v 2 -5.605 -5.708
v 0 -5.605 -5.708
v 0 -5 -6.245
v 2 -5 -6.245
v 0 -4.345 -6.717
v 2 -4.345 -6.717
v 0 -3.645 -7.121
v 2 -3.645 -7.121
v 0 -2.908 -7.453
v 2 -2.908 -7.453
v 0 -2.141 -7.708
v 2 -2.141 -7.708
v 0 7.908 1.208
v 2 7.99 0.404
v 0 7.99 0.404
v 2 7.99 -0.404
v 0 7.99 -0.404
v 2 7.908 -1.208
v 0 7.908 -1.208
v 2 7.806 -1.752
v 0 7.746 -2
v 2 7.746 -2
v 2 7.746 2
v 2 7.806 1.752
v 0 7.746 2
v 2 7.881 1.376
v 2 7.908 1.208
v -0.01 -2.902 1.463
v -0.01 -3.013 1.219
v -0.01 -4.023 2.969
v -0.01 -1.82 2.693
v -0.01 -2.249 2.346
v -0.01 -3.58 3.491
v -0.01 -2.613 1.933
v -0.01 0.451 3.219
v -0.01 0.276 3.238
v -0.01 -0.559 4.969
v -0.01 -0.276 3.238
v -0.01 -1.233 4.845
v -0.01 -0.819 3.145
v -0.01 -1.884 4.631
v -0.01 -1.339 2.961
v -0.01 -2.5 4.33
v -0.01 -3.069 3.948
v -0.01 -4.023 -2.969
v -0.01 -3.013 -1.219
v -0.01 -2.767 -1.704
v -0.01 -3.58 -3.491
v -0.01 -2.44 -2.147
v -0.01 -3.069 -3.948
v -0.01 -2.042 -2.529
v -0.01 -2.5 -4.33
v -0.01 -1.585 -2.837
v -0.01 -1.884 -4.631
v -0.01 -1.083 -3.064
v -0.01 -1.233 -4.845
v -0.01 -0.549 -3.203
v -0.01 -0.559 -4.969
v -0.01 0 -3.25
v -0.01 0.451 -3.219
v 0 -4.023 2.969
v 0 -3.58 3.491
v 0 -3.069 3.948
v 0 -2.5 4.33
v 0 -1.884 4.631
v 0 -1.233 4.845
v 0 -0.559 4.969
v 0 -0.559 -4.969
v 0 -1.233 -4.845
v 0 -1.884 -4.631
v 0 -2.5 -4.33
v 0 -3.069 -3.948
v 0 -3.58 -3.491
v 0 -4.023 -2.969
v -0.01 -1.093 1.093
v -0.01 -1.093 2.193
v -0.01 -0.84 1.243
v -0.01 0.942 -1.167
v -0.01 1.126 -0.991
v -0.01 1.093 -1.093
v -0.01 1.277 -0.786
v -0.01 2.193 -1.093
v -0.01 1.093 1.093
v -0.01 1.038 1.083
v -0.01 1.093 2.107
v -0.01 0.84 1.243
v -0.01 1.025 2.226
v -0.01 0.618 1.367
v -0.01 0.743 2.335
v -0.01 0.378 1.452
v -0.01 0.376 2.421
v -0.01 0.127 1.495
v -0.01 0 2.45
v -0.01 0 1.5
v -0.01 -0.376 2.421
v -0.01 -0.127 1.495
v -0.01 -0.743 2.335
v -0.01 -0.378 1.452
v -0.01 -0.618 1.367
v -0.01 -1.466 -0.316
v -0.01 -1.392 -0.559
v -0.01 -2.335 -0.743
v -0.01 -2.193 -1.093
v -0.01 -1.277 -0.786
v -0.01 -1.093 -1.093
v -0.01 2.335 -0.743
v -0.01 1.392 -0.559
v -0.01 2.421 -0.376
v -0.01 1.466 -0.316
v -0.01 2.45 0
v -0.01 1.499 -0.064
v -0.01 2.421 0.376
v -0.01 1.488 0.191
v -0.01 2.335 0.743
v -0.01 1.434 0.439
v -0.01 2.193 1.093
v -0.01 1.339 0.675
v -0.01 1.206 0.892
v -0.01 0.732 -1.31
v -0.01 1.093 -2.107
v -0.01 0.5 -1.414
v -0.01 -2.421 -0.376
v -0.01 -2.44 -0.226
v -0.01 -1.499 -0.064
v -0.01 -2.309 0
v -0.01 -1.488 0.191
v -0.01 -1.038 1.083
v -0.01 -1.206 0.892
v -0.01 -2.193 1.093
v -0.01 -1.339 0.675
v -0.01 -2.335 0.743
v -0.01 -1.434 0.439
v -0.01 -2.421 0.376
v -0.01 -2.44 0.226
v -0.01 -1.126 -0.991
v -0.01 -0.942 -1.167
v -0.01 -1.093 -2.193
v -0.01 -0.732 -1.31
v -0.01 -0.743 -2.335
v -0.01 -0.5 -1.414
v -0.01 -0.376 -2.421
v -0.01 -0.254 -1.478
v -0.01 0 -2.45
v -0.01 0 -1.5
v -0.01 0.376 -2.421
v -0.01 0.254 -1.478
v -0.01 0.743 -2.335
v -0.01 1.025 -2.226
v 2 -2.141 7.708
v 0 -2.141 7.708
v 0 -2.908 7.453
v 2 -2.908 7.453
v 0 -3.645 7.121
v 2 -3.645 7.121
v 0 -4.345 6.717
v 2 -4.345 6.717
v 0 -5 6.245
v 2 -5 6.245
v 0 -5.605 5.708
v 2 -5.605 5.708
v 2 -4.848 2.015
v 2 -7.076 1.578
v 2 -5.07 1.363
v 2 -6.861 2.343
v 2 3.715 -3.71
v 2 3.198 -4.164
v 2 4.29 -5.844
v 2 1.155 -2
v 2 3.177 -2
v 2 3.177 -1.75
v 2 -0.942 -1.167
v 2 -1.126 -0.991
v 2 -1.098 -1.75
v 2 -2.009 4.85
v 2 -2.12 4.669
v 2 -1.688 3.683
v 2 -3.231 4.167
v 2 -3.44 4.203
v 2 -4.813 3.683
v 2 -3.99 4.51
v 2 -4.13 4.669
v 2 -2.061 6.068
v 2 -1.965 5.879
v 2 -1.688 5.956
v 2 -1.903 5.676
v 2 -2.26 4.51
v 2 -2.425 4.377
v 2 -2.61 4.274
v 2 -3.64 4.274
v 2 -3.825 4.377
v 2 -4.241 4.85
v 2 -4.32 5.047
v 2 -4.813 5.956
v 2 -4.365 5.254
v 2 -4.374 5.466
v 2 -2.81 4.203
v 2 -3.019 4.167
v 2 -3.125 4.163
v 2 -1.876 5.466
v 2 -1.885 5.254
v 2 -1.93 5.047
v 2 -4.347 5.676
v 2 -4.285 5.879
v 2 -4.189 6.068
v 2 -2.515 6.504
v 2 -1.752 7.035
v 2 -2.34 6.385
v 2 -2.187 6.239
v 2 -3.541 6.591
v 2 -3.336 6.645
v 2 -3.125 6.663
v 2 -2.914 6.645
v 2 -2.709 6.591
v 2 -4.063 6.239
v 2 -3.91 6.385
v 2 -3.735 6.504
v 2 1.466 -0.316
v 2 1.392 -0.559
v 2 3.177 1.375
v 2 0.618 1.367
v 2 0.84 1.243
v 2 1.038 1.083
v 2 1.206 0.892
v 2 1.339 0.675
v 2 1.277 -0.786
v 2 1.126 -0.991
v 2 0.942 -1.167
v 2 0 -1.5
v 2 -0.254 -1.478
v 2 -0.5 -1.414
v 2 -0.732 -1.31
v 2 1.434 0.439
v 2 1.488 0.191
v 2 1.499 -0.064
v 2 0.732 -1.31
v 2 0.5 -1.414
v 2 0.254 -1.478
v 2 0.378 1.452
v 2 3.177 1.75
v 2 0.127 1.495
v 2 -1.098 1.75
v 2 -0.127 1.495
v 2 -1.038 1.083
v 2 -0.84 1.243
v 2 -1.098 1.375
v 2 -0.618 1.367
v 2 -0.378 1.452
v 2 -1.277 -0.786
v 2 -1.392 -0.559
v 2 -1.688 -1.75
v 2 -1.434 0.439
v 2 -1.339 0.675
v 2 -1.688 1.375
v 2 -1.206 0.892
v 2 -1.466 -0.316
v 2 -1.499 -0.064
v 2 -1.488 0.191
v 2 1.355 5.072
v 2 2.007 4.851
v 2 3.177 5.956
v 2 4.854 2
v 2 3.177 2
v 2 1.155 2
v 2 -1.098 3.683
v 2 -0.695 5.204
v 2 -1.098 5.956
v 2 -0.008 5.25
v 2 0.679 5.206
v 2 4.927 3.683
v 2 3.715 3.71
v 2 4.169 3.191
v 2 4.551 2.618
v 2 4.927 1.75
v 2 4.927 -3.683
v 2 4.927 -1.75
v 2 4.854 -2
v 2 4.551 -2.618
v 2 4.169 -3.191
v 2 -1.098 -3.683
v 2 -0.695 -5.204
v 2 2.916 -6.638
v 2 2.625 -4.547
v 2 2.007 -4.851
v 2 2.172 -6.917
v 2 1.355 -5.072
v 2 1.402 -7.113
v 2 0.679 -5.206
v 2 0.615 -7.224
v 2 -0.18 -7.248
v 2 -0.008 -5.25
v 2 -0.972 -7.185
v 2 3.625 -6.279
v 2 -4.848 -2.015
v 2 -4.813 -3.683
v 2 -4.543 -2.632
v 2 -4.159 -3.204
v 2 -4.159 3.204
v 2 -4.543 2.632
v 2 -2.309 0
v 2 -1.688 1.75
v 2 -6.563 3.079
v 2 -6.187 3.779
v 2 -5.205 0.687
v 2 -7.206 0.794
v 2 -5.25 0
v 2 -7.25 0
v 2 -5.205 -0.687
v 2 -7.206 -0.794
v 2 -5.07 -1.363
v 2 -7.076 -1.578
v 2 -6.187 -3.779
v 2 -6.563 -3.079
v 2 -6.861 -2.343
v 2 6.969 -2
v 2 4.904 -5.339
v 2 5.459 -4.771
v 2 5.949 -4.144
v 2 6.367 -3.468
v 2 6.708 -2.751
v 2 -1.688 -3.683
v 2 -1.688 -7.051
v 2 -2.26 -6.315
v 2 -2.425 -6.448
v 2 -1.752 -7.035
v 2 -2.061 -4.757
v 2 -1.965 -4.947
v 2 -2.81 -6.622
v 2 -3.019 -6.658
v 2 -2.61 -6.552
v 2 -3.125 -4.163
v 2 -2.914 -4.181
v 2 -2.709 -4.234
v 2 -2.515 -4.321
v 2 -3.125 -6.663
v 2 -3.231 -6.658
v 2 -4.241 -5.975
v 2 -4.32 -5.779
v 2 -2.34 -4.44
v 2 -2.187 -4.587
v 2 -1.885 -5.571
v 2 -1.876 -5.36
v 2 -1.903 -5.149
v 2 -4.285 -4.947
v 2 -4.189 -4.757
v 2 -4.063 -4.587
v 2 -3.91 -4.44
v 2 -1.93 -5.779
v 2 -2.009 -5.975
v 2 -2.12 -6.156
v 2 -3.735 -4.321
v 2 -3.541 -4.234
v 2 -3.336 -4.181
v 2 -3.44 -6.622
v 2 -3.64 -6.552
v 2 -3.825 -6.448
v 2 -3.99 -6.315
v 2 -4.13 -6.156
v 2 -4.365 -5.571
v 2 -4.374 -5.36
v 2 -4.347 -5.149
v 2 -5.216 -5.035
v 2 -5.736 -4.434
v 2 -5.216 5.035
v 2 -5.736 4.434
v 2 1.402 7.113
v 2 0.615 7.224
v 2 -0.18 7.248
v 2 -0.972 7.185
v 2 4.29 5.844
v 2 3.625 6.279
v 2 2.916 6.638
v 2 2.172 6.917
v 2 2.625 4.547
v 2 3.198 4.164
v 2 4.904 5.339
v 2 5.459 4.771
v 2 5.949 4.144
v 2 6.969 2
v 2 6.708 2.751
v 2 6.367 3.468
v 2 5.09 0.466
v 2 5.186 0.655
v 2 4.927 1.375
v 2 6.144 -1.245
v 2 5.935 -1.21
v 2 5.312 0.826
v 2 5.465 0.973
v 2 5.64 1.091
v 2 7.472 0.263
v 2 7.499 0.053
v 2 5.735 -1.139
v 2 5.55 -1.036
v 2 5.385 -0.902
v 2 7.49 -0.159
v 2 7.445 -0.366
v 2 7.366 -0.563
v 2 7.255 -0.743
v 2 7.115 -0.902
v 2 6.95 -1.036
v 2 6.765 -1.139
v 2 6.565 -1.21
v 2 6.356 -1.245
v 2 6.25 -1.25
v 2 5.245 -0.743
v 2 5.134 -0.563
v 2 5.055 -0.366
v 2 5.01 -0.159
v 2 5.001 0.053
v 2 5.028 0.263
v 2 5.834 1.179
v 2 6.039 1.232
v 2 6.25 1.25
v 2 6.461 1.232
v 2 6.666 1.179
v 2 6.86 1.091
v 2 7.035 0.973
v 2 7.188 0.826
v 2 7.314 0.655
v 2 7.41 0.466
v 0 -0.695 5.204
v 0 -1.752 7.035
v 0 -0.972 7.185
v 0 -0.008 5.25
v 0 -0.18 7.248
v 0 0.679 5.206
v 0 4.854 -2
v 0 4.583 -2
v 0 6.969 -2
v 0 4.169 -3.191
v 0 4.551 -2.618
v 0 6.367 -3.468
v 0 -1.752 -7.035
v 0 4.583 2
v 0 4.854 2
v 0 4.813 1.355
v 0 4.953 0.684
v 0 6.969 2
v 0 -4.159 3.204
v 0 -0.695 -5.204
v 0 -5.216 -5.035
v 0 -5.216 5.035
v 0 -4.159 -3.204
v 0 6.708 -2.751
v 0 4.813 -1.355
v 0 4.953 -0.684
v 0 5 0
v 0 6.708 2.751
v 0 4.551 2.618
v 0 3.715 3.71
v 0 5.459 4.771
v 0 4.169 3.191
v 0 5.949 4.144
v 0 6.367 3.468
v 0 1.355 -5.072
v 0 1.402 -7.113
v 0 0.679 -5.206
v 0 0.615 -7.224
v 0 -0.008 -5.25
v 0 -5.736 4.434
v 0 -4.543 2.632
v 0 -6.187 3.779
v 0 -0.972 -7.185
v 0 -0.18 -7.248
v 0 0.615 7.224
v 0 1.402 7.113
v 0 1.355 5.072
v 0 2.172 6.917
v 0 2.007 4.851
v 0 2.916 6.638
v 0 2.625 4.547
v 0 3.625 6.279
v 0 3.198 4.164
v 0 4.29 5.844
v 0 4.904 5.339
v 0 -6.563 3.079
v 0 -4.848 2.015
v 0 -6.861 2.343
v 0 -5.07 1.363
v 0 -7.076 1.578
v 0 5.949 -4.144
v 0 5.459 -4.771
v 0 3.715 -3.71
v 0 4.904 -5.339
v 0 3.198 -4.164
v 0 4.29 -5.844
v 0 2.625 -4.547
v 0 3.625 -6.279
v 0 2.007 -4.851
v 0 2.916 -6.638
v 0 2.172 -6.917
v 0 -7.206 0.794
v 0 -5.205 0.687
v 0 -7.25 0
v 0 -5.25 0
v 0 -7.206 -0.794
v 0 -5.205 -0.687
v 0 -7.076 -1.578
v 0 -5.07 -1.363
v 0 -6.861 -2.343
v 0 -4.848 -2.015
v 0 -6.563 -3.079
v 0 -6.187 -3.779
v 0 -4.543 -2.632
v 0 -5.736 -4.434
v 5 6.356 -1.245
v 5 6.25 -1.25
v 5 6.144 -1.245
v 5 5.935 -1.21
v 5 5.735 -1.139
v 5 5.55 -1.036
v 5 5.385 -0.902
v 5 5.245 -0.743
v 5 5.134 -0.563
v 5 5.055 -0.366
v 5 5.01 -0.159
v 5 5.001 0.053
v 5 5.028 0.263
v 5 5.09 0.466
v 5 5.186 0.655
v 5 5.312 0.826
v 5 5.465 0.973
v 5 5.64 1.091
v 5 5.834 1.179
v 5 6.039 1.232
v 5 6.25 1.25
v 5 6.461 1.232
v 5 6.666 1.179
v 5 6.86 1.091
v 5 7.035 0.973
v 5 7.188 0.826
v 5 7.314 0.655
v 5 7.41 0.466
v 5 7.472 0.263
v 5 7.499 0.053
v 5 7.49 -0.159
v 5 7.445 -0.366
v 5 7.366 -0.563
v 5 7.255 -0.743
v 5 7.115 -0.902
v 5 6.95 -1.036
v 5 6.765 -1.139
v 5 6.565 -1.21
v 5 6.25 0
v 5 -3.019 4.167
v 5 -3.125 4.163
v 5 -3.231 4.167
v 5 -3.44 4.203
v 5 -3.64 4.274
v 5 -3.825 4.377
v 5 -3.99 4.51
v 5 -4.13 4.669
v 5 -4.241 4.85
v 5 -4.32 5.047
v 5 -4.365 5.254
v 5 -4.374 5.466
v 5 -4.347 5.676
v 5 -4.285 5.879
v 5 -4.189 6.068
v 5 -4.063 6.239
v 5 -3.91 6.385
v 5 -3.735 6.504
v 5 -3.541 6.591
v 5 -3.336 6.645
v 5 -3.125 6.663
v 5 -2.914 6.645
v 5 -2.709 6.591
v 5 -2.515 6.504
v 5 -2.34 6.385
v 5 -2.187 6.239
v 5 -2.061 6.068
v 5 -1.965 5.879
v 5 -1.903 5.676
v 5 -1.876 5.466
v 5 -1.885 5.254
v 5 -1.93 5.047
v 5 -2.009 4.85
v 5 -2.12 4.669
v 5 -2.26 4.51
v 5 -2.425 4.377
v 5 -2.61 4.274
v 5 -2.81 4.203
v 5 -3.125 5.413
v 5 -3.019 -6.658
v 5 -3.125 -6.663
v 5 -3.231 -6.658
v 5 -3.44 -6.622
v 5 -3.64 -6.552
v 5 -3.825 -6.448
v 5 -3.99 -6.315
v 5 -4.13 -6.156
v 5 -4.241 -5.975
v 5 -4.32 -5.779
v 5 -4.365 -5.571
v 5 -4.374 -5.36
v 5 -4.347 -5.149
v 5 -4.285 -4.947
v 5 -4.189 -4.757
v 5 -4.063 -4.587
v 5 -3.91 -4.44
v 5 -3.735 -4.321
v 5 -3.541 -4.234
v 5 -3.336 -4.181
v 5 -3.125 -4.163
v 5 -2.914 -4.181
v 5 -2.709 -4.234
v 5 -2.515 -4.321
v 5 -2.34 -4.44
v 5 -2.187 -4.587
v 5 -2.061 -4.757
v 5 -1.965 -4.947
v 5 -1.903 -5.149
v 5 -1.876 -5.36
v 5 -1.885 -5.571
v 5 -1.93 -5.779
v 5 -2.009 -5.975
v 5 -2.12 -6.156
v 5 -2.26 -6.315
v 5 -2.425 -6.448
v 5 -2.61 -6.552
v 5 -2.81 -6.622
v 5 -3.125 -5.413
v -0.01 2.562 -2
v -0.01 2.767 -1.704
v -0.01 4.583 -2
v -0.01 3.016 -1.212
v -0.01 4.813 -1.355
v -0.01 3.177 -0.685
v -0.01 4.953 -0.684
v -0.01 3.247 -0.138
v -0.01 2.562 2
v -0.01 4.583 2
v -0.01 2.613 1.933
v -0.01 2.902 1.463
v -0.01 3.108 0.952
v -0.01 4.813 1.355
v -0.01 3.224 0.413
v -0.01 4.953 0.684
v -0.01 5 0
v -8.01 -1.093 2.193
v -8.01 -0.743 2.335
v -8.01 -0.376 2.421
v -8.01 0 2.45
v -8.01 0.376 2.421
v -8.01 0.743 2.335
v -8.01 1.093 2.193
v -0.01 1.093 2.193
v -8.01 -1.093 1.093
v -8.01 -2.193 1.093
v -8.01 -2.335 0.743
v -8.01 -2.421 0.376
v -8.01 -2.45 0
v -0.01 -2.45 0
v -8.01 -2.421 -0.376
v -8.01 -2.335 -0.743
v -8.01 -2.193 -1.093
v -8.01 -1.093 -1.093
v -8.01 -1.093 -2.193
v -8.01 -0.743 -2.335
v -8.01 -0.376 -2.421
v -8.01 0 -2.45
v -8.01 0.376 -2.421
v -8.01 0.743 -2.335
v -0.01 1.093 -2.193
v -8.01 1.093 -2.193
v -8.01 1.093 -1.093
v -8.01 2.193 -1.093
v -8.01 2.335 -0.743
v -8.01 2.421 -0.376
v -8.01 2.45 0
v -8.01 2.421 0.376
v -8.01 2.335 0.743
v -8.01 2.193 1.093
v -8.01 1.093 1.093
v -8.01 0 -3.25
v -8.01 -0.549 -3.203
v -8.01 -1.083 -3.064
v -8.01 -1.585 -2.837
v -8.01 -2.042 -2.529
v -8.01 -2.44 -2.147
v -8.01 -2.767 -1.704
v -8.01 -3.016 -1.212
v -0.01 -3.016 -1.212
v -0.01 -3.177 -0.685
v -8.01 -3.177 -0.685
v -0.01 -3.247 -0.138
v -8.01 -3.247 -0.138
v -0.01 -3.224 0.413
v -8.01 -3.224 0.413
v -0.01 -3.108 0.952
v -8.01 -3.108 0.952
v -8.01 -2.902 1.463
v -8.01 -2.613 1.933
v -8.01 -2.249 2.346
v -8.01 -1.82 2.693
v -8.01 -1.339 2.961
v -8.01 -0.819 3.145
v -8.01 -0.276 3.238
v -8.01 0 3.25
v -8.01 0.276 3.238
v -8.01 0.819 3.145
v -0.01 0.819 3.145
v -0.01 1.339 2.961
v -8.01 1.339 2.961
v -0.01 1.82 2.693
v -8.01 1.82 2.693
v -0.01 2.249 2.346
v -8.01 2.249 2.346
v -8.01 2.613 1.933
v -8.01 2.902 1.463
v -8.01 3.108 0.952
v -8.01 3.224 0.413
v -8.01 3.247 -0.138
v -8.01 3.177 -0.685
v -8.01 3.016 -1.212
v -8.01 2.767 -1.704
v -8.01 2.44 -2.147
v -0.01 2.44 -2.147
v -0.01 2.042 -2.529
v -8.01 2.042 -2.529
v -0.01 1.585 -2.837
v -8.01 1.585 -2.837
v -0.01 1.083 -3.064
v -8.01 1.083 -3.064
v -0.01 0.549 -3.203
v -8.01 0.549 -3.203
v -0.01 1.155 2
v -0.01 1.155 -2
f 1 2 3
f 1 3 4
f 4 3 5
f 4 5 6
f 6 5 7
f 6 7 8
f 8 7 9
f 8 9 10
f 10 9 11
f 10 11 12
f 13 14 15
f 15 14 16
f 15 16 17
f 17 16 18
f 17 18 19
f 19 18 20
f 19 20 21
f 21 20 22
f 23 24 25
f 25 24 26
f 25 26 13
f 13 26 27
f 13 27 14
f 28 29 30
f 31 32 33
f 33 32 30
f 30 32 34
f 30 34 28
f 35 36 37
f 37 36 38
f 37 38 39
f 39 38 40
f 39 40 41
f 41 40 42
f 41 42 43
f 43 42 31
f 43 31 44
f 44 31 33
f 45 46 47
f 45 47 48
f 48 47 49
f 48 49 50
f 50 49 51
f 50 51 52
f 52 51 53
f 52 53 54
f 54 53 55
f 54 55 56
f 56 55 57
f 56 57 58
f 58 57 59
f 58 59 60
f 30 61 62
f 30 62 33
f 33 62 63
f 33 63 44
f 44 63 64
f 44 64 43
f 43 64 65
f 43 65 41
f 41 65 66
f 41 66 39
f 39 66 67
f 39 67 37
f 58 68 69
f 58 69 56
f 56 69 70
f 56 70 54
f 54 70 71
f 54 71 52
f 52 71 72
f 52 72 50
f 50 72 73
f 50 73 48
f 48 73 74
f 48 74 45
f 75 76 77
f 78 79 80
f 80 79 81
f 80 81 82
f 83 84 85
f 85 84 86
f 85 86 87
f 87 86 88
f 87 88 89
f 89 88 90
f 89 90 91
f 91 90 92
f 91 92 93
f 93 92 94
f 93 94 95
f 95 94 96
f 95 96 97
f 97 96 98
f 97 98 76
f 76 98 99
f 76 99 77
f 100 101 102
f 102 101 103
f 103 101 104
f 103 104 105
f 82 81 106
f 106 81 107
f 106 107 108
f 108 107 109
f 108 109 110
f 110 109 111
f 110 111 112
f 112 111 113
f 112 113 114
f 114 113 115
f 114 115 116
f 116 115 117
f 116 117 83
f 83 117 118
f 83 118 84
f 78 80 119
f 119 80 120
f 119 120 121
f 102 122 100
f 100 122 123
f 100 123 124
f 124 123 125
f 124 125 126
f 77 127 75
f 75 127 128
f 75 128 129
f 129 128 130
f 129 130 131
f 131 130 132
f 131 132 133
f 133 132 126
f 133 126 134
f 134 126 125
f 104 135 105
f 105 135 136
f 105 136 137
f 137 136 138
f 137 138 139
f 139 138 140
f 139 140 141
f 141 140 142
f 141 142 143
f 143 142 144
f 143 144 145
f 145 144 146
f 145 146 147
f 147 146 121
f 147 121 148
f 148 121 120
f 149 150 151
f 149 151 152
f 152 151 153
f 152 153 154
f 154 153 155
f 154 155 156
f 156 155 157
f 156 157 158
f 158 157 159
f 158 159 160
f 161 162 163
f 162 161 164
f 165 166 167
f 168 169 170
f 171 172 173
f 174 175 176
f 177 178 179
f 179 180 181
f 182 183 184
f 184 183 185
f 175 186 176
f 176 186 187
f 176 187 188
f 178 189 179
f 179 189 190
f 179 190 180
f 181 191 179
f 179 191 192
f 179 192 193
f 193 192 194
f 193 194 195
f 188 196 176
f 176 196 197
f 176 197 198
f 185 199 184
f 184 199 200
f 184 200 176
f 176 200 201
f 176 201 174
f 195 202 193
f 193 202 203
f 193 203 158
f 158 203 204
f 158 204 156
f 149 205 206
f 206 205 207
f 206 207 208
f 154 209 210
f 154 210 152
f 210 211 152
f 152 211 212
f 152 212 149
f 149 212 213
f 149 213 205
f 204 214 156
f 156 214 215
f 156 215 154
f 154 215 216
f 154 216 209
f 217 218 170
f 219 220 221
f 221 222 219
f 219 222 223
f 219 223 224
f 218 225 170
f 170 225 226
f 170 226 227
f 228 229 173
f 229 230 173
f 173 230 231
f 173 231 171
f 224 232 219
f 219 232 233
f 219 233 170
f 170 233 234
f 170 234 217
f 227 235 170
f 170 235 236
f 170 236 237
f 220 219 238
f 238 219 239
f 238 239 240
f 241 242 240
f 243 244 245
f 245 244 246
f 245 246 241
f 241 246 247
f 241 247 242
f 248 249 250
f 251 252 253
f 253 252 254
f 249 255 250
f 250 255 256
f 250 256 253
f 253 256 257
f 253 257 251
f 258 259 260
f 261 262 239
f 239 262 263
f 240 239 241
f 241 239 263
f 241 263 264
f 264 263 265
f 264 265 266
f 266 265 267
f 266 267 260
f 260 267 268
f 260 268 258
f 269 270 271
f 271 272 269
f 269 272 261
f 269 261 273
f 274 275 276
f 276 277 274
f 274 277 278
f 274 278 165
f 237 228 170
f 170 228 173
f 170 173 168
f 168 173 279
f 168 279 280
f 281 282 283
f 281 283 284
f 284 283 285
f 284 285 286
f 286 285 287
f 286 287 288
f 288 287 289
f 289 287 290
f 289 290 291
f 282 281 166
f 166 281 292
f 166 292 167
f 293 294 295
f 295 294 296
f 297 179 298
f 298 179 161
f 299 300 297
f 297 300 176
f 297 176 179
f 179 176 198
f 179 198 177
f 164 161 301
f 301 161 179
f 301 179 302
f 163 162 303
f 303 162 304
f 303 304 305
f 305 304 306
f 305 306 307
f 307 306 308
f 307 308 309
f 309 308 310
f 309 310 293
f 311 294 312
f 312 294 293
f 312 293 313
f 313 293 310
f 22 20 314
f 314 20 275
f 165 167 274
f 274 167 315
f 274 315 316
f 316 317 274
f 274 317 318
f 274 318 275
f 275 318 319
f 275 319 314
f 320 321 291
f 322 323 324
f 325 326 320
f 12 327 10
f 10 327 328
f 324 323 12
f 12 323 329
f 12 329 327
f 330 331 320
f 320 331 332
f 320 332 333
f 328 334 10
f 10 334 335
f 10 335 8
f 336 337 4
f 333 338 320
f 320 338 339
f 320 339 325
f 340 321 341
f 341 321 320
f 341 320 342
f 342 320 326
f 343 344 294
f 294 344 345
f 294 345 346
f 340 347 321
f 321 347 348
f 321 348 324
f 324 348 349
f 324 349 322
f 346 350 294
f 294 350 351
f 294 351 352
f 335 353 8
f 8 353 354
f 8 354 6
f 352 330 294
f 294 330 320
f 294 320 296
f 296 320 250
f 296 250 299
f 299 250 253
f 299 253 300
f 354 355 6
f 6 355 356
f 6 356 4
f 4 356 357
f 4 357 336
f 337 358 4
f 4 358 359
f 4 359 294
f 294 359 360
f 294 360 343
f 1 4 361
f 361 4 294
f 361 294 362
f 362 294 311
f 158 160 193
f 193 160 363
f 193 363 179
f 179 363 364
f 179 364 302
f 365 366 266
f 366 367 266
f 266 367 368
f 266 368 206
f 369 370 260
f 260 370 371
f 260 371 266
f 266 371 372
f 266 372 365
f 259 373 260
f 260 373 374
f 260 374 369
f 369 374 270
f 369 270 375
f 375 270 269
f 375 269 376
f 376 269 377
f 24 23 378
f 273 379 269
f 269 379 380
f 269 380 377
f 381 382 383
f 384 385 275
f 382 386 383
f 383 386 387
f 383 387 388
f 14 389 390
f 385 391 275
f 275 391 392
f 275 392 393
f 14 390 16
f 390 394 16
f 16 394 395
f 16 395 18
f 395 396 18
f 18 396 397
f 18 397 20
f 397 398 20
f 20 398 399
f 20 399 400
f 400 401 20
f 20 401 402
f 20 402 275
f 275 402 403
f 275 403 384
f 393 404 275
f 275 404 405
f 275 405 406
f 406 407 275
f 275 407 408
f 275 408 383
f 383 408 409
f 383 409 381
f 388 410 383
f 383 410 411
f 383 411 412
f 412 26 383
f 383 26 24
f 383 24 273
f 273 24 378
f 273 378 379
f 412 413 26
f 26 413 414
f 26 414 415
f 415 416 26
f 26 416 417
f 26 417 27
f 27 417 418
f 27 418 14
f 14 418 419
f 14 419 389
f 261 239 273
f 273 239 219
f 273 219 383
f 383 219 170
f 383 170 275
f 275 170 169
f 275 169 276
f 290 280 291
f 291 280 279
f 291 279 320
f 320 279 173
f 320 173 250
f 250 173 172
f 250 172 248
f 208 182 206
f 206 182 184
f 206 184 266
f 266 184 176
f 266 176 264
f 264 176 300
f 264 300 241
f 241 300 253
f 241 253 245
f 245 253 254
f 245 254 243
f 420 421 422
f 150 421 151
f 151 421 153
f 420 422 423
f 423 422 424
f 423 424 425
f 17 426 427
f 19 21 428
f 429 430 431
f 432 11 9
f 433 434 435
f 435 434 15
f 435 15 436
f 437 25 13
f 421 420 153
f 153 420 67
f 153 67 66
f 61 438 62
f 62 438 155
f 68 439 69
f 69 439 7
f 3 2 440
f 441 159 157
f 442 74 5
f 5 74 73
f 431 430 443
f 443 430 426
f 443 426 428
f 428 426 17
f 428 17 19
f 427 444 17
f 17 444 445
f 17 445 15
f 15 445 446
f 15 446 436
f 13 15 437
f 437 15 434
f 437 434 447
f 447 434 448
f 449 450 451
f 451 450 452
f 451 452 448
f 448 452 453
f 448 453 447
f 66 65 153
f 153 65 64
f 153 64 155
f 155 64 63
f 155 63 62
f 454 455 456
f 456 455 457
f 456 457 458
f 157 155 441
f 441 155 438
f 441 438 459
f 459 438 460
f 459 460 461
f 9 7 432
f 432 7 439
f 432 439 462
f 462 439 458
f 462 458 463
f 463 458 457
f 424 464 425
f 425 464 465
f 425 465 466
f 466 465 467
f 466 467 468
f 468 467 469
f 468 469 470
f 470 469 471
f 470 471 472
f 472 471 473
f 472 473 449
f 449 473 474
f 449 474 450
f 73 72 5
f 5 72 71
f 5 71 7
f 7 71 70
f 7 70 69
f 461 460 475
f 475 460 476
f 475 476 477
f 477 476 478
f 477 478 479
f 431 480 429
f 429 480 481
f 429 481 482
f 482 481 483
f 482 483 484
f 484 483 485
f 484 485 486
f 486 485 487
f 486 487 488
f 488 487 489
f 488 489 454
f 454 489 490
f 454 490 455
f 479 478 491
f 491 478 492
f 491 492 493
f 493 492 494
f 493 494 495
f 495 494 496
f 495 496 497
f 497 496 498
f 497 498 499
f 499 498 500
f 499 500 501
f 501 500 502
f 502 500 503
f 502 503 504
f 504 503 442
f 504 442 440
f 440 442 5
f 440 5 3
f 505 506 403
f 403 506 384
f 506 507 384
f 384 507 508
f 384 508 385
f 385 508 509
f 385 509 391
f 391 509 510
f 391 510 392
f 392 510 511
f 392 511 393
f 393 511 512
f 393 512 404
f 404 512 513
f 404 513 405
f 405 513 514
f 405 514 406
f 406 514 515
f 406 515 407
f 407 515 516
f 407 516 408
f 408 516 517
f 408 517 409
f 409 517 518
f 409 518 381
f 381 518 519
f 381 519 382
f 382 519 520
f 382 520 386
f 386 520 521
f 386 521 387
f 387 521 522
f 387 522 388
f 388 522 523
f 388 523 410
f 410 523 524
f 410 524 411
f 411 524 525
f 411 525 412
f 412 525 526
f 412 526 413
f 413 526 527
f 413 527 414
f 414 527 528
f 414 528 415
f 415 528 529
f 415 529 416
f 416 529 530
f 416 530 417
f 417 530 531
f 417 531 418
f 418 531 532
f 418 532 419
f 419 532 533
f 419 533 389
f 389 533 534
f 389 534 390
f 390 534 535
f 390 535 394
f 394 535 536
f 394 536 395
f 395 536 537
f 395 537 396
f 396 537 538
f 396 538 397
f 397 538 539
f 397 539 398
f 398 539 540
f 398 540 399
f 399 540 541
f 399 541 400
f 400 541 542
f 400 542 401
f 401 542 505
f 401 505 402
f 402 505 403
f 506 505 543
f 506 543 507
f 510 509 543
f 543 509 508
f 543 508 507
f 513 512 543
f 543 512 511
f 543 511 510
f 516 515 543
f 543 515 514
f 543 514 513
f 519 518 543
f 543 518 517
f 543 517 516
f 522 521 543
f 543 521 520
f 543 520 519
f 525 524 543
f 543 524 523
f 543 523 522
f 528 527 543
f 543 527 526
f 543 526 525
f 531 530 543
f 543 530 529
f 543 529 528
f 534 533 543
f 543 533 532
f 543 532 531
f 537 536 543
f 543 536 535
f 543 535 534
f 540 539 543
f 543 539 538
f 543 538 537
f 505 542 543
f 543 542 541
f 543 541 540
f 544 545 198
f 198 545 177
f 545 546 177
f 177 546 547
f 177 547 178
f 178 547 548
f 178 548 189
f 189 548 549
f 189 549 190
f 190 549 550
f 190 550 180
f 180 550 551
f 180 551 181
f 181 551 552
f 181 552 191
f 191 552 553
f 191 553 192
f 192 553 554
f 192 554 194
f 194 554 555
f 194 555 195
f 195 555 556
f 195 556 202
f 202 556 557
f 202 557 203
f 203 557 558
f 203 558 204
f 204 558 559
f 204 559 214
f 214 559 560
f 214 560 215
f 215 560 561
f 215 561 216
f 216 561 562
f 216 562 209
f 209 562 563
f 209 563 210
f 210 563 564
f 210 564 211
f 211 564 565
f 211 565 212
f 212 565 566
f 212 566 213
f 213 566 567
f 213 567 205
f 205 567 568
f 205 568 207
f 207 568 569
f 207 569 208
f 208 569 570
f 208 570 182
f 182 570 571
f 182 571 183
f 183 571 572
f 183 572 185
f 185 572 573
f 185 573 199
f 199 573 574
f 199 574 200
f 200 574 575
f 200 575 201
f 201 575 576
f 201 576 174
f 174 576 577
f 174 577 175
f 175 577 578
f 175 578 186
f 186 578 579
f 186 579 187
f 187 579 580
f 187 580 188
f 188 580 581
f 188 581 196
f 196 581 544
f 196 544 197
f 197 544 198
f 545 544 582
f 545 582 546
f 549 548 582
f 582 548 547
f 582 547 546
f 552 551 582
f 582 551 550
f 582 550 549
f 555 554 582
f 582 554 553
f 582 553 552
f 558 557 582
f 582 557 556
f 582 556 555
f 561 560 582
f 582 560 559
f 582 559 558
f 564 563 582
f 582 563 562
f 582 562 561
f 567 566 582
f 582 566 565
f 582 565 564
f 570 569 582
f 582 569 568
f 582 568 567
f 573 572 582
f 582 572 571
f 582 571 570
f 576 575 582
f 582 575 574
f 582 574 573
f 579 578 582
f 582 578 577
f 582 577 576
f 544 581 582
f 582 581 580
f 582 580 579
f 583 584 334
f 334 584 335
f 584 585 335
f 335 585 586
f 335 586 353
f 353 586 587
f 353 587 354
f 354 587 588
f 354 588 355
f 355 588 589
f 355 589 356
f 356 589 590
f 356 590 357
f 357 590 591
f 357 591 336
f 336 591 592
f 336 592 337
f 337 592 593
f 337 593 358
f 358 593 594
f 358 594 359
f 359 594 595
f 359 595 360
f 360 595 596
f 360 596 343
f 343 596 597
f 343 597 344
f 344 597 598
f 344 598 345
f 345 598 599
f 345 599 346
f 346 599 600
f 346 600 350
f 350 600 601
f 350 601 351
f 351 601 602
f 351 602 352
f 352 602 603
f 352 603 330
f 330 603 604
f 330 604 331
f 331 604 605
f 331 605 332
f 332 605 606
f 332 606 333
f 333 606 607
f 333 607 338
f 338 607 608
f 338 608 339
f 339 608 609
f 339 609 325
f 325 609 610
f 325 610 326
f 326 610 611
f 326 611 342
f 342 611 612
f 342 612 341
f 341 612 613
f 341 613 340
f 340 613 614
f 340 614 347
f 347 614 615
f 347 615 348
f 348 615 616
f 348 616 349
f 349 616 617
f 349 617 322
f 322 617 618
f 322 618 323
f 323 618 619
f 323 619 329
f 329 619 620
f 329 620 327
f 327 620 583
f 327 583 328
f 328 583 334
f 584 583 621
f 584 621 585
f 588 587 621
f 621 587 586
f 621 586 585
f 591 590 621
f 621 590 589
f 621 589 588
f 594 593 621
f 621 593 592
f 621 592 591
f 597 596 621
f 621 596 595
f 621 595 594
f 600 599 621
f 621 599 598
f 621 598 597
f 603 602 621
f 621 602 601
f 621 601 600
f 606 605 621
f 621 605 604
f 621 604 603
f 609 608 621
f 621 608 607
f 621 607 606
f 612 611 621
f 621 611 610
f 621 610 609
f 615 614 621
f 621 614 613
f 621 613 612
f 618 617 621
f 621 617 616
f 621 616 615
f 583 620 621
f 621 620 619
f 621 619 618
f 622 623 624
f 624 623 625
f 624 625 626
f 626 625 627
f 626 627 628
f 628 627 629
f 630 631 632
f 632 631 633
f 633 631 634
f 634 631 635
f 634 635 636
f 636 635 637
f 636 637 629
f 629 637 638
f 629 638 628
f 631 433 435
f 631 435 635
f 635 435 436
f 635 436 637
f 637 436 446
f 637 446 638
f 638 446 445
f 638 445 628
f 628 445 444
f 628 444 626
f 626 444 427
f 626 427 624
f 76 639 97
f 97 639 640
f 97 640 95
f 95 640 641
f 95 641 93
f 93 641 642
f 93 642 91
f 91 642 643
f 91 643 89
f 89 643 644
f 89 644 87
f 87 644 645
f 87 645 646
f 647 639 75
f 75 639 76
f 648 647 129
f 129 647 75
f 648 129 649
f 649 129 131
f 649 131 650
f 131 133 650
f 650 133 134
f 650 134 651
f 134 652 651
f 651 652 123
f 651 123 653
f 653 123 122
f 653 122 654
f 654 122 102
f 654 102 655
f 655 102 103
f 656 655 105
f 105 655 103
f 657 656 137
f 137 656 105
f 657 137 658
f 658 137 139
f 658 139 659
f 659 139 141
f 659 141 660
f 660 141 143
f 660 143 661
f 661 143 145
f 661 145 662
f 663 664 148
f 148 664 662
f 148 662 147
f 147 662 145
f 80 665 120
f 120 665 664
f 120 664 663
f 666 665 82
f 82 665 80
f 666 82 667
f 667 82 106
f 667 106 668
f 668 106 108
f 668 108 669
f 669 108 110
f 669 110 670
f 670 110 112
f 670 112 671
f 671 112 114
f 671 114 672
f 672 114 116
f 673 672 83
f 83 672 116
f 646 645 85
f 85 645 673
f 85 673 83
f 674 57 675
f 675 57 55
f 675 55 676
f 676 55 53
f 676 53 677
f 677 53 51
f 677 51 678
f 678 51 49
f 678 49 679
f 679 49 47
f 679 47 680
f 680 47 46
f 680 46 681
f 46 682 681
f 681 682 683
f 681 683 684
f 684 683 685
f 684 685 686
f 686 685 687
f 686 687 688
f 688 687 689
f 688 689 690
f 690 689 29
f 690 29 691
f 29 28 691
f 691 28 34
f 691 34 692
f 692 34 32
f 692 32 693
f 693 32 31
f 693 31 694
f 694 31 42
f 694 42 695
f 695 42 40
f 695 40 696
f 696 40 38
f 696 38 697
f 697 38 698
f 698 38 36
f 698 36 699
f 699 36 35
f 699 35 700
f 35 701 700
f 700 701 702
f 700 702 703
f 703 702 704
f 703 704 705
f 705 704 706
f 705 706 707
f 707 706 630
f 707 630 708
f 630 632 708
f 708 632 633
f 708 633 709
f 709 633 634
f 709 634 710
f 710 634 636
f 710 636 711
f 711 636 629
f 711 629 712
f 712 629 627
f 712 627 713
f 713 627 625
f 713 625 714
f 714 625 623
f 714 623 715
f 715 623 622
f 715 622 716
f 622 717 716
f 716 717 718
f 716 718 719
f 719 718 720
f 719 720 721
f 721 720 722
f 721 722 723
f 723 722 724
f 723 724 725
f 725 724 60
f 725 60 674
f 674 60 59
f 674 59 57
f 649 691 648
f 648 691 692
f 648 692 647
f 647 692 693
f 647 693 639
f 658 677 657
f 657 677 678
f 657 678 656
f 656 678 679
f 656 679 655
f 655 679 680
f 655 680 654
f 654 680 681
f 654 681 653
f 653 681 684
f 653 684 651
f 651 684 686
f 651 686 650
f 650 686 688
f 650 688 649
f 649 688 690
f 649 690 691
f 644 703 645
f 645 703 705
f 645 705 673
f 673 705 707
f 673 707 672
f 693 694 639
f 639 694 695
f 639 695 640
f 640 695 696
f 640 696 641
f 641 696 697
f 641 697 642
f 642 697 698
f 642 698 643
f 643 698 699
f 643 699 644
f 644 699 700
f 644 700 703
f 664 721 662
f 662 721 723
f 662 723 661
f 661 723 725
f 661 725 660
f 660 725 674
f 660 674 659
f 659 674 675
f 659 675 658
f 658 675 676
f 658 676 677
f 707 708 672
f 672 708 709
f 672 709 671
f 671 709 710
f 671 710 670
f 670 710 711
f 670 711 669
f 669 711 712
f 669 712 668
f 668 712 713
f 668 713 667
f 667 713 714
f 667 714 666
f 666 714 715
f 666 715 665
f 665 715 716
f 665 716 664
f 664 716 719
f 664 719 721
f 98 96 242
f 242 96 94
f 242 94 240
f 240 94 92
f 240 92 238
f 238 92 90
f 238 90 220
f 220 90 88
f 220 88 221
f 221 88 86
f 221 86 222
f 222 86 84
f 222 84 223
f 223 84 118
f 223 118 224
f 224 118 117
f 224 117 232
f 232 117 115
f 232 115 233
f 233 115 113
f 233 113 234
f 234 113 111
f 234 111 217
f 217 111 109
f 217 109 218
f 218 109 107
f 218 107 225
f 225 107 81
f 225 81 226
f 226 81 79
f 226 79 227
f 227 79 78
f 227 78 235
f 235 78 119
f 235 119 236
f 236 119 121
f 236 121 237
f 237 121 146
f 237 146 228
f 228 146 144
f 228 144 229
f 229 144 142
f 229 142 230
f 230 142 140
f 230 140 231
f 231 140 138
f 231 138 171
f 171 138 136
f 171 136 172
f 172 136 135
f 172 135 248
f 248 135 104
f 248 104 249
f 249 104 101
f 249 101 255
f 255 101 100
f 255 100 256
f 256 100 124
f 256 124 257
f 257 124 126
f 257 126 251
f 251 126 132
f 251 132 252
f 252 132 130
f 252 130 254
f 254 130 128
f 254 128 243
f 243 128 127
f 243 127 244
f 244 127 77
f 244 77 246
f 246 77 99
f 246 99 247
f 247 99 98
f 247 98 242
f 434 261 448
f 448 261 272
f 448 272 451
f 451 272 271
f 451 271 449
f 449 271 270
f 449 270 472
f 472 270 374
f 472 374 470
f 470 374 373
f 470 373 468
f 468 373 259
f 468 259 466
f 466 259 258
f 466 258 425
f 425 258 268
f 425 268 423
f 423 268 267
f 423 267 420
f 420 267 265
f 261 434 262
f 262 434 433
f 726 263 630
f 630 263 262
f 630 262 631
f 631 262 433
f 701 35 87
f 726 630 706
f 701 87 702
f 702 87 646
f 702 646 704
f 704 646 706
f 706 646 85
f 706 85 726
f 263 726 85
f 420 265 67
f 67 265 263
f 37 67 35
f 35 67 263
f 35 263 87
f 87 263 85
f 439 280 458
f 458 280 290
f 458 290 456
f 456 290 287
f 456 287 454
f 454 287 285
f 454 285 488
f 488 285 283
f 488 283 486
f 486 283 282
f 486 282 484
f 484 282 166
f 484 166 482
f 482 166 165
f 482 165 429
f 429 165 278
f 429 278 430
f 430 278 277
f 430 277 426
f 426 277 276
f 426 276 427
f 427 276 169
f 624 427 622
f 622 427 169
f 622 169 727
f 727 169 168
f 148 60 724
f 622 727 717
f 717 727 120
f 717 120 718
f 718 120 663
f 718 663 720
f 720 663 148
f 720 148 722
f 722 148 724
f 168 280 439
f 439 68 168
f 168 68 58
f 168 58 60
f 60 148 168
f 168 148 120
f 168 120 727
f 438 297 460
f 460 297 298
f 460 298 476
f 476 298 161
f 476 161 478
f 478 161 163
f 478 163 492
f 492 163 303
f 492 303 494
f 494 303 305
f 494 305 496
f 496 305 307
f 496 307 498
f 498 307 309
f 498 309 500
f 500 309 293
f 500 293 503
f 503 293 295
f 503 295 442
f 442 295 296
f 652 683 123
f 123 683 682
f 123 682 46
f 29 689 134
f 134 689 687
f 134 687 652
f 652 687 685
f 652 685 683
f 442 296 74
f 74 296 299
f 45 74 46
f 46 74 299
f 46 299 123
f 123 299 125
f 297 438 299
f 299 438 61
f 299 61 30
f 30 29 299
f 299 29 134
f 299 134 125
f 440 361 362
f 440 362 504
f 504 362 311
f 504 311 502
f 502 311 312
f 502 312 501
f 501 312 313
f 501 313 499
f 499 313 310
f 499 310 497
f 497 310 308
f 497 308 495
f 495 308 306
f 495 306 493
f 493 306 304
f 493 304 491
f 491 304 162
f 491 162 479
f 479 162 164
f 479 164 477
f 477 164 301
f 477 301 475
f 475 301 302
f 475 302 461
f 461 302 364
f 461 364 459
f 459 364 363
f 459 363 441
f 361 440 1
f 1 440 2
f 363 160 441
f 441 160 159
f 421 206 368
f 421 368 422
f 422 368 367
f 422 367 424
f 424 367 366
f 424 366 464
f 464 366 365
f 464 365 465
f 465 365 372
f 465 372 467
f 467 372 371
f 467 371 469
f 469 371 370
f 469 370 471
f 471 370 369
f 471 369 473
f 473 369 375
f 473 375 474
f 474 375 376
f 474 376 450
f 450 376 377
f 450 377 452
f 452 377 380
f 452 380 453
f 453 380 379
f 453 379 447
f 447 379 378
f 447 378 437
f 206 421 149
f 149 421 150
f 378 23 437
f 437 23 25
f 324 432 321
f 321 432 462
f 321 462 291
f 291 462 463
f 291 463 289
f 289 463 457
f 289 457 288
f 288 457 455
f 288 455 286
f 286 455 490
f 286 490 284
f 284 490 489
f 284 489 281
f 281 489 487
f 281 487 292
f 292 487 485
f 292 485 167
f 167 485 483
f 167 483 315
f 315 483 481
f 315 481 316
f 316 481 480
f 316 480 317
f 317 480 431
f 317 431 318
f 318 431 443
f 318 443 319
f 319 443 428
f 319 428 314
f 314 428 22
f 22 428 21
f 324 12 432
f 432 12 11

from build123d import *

# Parameters (mm, degrees)
SKETCH_1_R               = 8
EXTRUDE_1_DEPTH          = 2
EXTRUDE_START            = 2
SKETCH_1_3_R             = 1.25
EXTRUDE_2_DEPTH          = 3
SKETCH_2_R               = 5
SKETCH_2_R_2             = 1.5
EXTRUDE_3_DEPTH          = 0.01
SKETCH_3_R               = 3.25
SKETCH_3_R_2             = 2.45
EXTRUDE_4_DEPTH          = 8
CUT_EXTRUDE_1_DEPTH      = 14.862182368
CUT_EXTRUDE_1_DEPTH_BACK = 14.862182368
SKETCH_2_2_R             = 1.5
CUT_EXTRUDE_2_REACH      = 17.106


with BuildPart() as part:
    # 草图1 → 凸台-拉伸1 (new body)
    with BuildSketch(Plane(origin=(0, 0, 0), x_dir=(0, 0, -1), z_dir=(1, 0, 0))):
        Circle(SKETCH_1_R)
    extrude(amount=EXTRUDE_1_DEPTH)

    # 草图1<3> → 凸台-拉伸2 (add)
    with BuildSketch(Plane(origin=(0, 0, 0), x_dir=(0, 0, -1), z_dir=(1, 0, 0)).offset(EXTRUDE_START)):
        with Locations((0, 6.25)):
            Circle(SKETCH_1_3_R)
        with Locations((-5.412658774, -3.125)):
            Circle(SKETCH_1_3_R)
        with Locations((5.412658774, -3.125)):
            Circle(SKETCH_1_3_R)
    extrude(amount=EXTRUDE_2_DEPTH)

    # 草图2 → 凸台-拉伸3 (add)
    with BuildSketch(Plane.ZY):
        with Locations(Location((0, 0, 0), (0, 0, 180))):
            Circle(SKETCH_2_R)
        with Locations(Location((0, 0, 0), (0, 0, 180))):
            Circle(SKETCH_2_R_2, mode=Mode.SUBTRACT)
    extrude(amount=EXTRUDE_3_DEPTH)

    # 草图3 → 凸台-拉伸4 (add)
    # profile 1 of 5: a face of its own
    with BuildSketch(Plane.ZY.offset(0.01)):
        Circle(SKETCH_3_R)
        Circle(SKETCH_3_R_2, mode=Mode.SUBTRACT)
    # profile 2 of 5: a face of its own
    with BuildSketch(Plane.ZY.offset(0.01)):
        with BuildLine():
            ThreePointArc((-1.092787266, 2.192787266), (-1.732411614, 1.732411614), (-2.192787266, 1.092787266))
            Line((-2.192787266, 1.092787266), (-1.092787266, 1.092787266))
            Line((-1.092787266, 1.092787266), (-1.092787266, 2.192787266))
        make_face()
    # profile 3 of 5: a face of its own
    with BuildSketch(Plane.ZY.offset(0.01)):
        with BuildLine():
            Line((-1.092787266, -1.092787266), (-2.192787266, -1.092787266))
            ThreePointArc((-2.192787266, -1.092787266), (-1.732411614, -1.732411614), (-1.092787266, -2.192787266))
            Line((-1.092787266, -2.192787266), (-1.092787266, -1.092787266))
        make_face()
    # profile 4 of 5: a face of its own
    with BuildSketch(Plane.ZY.offset(0.01)):
        with BuildLine():
            Line((2.192787266, -1.092787266), (1.092787266, -1.092787266))
            Line((1.092787266, -1.092787266), (1.092787266, -2.192787266))
            ThreePointArc((1.092787266, -2.192787266), (1.732411614, -1.732411614), (2.192787266, -1.092787266))
        make_face()
    # profile 5 of 5: a face of its own
    with BuildSketch(Plane.ZY.offset(0.01)):
        with BuildLine():
            Line((1.092787266, 2.192787266), (1.092787266, 1.092787266))
            Line((1.092787266, 1.092787266), (2.192787266, 1.092787266))
            ThreePointArc((2.192787266, 1.092787266), (1.732411614, 1.732411614), (1.092787266, 2.192787266))
        make_face()
    extrude(amount=EXTRUDE_4_DEPTH)

    # 草图2<2> → 切除-拉伸1 (cut, two sides: drawn at the far end of the back side and taken through both)
    with BuildSketch(Plane.ZY.offset(-CUT_EXTRUDE_1_DEPTH_BACK)):
        with Locations(Location((0, 0, 0), (0, 0, 180))):
            Circle(SKETCH_2_2_R)
    extrude(amount=CUT_EXTRUDE_1_DEPTH + CUT_EXTRUDE_1_DEPTH_BACK, mode=Mode.SUBTRACT)

    # 切除-拉伸2: up to this face of the body (flat: up to its plane)
    cut_extrude_2_end = Plane(part.part.faces().sort_by_distance((-0.01, 0, 4.858578644))[0])
    # 草图4 → 切除-拉伸2 (cut, up to the picked face)
    with BuildSketch(Plane(origin=(2, 0, 0), x_dir=(0, 0, -1), z_dir=(1, 0, 0)), mode=Mode.PRIVATE) as cut_extrude_2_sk1:
        with BuildLine():
            Line((-2, 1.154700538), (-2, 4.85412196))
            ThreePointArc((-2, 4.85412196), (-4.54663337, 2.625), (-5.20379293, -0.695010172))
            Line((-5.20379293, -0.695010172), (-2, 1.154700538))
        make_face()
    cut_extrude_2_tool1 = split(extrude(cut_extrude_2_sk1.sketch, amount=-CUT_EXTRUDE_2_REACH, mode=Mode.PRIVATE), bisect_by=cut_extrude_2_end, keep=Keep.BOTH, mode=Mode.PRIVATE)
    # 草图4 → 切除-拉伸2 (cut, up to the picked face)
    with BuildSketch(Plane(origin=(2, 0, 0), x_dir=(0, 0, -1), z_dir=(1, 0, 0)), mode=Mode.PRIVATE) as cut_extrude_2_sk2:
        with BuildLine():
            Line((2, 1.154700538), (5.20379293, -0.695010172))
            ThreePointArc((5.20379293, -0.695010172), (5.238435496, -0.348272247), (5.25, 0))
            ThreePointArc((5.25, 0), (4.362482092, 2.920830361), (2, 4.85412196))
            Line((2, 4.85412196), (2, 1.154700538))
        make_face()
    cut_extrude_2_tool2 = split(extrude(cut_extrude_2_sk2.sketch, amount=-CUT_EXTRUDE_2_REACH, mode=Mode.PRIVATE), bisect_by=cut_extrude_2_end, keep=Keep.BOTH, mode=Mode.PRIVATE)
    # 草图4 → 切除-拉伸2 (cut, up to the picked face)
    with BuildSketch(Plane(origin=(2, 0, 0), x_dir=(0, 0, -1), z_dir=(1, 0, 0)), mode=Mode.PRIVATE) as cut_extrude_2_sk3:
        with BuildLine():
            ThreePointArc((-3.20379293, -4.159111787), (0, -5.25), (3.20379293, -4.159111787))
            Line((3.20379293, -4.159111787), (0, -2.309401077))
            Line((0, -2.309401077), (-3.20379293, -4.159111787))
        make_face()
    cut_extrude_2_tool3 = split(extrude(cut_extrude_2_sk3.sketch, amount=-CUT_EXTRUDE_2_REACH, mode=Mode.PRIVATE), bisect_by=cut_extrude_2_end, keep=Keep.BOTH, mode=Mode.PRIVATE)
    # 草图4 → 切除-拉伸2 (cut, up to the picked face)
    with BuildSketch(Plane(origin=(2, 0, 0), x_dir=(0, 0, -1), z_dir=(1, 0, 0)), mode=Mode.PRIVATE) as cut_extrude_2_sk4:
        with BuildLine():
            ThreePointArc((-2, 7.745966692), (-6.92820323, 4), (-7.708203932, -2.140932539))
            Line((-7.708203932, -2.140932539), (-7.035053852, -1.752289159))
            ThreePointArc((-7.035053852, -1.752289159), (-6.278684177, 3.625), (-2, 6.968679932))
            Line((-2, 6.968679932), (-2, 7.745966692))
        make_face()
    cut_extrude_2_tool4 = split(extrude(cut_extrude_2_sk4.sketch, amount=-CUT_EXTRUDE_2_REACH, mode=Mode.PRIVATE), bisect_by=cut_extrude_2_end, keep=Keep.BOTH, mode=Mode.PRIVATE)
    # 草图4 → 切除-拉伸2 (cut, up to the picked face)
    with BuildSketch(Plane(origin=(2, 0, 0), x_dir=(0, 0, -1), z_dir=(1, 0, 0)), mode=Mode.PRIVATE) as cut_extrude_2_sk5:
        with BuildLine():
            Line((7.035053852, -1.752289159), (7.708203932, -2.140932539))
            ThreePointArc((7.708203932, -2.140932539), (7.926715318, -1.080363027), (8, 0))
            ThreePointArc((8, 0), (6.32455532, 4.898979486), (2, 7.745966692))
            Line((2, 7.745966692), (2, 6.968679932))
            ThreePointArc((2, 6.968679932), (5.790617411, 4.362482092), (7.25, 0))
            ThreePointArc((7.25, 0), (7.196062827, -0.882711609), (7.035053852, -1.752289159))
        make_face()
    cut_extrude_2_tool5 = split(extrude(cut_extrude_2_sk5.sketch, amount=-CUT_EXTRUDE_2_REACH, mode=Mode.PRIVATE), bisect_by=cut_extrude_2_end, keep=Keep.BOTH, mode=Mode.PRIVATE)
    # 草图4 → 切除-拉伸2 (cut, up to the picked face)
    with BuildSketch(Plane(origin=(2, 0, 0), x_dir=(0, 0, -1), z_dir=(1, 0, 0)), mode=Mode.PRIVATE) as cut_extrude_2_sk6:
        with BuildLine():
            ThreePointArc((-5.708203932, -5.605034154), (0, -8), (5.708203932, -5.605034154))
            Line((5.708203932, -5.605034154), (5.035053852, -5.216390774))
            ThreePointArc((5.035053852, -5.216390774), (0, -7.25), (-5.035053852, -5.216390774))
            Line((-5.035053852, -5.216390774), (-5.708203932, -5.605034154))
        make_face()
    cut_extrude_2_tool6 = split(extrude(cut_extrude_2_sk6.sketch, amount=-CUT_EXTRUDE_2_REACH, mode=Mode.PRIVATE), bisect_by=cut_extrude_2_end, keep=Keep.BOTH, mode=Mode.PRIVATE)
    add(cut_extrude_2_tool1.solids().sort_by(Axis((2, 2.006872, 3.476004), (-1, 0, 0)))[0], mode=Mode.SUBTRACT)
    add(cut_extrude_2_tool2.solids().sort_by(Axis((2, 2.006872, -3.476004), (-1, 0, 0)))[0], mode=Mode.SUBTRACT)
    add(cut_extrude_2_tool3.solids().sort_by(Axis((2, -4.013743, 0), (-1, 0, 0)))[0], mode=Mode.SUBTRACT)
    add(cut_extrude_2_tool4.solids().sort_by(Axis((2, 7.357323, 2.115651), (-1, 0, 0)))[0], mode=Mode.SUBTRACT)
    add(cut_extrude_2_tool5.solids().sort_by(Axis((2, -1.846454, -7.429454), (-1, 0, 0)))[0], mode=Mode.SUBTRACT)
    add(cut_extrude_2_tool6.solids().sort_by(Axis((2, -7.367509, 0), (-1, 0, 0)))[0], mode=Mode.SUBTRACT)


solid = part.part
